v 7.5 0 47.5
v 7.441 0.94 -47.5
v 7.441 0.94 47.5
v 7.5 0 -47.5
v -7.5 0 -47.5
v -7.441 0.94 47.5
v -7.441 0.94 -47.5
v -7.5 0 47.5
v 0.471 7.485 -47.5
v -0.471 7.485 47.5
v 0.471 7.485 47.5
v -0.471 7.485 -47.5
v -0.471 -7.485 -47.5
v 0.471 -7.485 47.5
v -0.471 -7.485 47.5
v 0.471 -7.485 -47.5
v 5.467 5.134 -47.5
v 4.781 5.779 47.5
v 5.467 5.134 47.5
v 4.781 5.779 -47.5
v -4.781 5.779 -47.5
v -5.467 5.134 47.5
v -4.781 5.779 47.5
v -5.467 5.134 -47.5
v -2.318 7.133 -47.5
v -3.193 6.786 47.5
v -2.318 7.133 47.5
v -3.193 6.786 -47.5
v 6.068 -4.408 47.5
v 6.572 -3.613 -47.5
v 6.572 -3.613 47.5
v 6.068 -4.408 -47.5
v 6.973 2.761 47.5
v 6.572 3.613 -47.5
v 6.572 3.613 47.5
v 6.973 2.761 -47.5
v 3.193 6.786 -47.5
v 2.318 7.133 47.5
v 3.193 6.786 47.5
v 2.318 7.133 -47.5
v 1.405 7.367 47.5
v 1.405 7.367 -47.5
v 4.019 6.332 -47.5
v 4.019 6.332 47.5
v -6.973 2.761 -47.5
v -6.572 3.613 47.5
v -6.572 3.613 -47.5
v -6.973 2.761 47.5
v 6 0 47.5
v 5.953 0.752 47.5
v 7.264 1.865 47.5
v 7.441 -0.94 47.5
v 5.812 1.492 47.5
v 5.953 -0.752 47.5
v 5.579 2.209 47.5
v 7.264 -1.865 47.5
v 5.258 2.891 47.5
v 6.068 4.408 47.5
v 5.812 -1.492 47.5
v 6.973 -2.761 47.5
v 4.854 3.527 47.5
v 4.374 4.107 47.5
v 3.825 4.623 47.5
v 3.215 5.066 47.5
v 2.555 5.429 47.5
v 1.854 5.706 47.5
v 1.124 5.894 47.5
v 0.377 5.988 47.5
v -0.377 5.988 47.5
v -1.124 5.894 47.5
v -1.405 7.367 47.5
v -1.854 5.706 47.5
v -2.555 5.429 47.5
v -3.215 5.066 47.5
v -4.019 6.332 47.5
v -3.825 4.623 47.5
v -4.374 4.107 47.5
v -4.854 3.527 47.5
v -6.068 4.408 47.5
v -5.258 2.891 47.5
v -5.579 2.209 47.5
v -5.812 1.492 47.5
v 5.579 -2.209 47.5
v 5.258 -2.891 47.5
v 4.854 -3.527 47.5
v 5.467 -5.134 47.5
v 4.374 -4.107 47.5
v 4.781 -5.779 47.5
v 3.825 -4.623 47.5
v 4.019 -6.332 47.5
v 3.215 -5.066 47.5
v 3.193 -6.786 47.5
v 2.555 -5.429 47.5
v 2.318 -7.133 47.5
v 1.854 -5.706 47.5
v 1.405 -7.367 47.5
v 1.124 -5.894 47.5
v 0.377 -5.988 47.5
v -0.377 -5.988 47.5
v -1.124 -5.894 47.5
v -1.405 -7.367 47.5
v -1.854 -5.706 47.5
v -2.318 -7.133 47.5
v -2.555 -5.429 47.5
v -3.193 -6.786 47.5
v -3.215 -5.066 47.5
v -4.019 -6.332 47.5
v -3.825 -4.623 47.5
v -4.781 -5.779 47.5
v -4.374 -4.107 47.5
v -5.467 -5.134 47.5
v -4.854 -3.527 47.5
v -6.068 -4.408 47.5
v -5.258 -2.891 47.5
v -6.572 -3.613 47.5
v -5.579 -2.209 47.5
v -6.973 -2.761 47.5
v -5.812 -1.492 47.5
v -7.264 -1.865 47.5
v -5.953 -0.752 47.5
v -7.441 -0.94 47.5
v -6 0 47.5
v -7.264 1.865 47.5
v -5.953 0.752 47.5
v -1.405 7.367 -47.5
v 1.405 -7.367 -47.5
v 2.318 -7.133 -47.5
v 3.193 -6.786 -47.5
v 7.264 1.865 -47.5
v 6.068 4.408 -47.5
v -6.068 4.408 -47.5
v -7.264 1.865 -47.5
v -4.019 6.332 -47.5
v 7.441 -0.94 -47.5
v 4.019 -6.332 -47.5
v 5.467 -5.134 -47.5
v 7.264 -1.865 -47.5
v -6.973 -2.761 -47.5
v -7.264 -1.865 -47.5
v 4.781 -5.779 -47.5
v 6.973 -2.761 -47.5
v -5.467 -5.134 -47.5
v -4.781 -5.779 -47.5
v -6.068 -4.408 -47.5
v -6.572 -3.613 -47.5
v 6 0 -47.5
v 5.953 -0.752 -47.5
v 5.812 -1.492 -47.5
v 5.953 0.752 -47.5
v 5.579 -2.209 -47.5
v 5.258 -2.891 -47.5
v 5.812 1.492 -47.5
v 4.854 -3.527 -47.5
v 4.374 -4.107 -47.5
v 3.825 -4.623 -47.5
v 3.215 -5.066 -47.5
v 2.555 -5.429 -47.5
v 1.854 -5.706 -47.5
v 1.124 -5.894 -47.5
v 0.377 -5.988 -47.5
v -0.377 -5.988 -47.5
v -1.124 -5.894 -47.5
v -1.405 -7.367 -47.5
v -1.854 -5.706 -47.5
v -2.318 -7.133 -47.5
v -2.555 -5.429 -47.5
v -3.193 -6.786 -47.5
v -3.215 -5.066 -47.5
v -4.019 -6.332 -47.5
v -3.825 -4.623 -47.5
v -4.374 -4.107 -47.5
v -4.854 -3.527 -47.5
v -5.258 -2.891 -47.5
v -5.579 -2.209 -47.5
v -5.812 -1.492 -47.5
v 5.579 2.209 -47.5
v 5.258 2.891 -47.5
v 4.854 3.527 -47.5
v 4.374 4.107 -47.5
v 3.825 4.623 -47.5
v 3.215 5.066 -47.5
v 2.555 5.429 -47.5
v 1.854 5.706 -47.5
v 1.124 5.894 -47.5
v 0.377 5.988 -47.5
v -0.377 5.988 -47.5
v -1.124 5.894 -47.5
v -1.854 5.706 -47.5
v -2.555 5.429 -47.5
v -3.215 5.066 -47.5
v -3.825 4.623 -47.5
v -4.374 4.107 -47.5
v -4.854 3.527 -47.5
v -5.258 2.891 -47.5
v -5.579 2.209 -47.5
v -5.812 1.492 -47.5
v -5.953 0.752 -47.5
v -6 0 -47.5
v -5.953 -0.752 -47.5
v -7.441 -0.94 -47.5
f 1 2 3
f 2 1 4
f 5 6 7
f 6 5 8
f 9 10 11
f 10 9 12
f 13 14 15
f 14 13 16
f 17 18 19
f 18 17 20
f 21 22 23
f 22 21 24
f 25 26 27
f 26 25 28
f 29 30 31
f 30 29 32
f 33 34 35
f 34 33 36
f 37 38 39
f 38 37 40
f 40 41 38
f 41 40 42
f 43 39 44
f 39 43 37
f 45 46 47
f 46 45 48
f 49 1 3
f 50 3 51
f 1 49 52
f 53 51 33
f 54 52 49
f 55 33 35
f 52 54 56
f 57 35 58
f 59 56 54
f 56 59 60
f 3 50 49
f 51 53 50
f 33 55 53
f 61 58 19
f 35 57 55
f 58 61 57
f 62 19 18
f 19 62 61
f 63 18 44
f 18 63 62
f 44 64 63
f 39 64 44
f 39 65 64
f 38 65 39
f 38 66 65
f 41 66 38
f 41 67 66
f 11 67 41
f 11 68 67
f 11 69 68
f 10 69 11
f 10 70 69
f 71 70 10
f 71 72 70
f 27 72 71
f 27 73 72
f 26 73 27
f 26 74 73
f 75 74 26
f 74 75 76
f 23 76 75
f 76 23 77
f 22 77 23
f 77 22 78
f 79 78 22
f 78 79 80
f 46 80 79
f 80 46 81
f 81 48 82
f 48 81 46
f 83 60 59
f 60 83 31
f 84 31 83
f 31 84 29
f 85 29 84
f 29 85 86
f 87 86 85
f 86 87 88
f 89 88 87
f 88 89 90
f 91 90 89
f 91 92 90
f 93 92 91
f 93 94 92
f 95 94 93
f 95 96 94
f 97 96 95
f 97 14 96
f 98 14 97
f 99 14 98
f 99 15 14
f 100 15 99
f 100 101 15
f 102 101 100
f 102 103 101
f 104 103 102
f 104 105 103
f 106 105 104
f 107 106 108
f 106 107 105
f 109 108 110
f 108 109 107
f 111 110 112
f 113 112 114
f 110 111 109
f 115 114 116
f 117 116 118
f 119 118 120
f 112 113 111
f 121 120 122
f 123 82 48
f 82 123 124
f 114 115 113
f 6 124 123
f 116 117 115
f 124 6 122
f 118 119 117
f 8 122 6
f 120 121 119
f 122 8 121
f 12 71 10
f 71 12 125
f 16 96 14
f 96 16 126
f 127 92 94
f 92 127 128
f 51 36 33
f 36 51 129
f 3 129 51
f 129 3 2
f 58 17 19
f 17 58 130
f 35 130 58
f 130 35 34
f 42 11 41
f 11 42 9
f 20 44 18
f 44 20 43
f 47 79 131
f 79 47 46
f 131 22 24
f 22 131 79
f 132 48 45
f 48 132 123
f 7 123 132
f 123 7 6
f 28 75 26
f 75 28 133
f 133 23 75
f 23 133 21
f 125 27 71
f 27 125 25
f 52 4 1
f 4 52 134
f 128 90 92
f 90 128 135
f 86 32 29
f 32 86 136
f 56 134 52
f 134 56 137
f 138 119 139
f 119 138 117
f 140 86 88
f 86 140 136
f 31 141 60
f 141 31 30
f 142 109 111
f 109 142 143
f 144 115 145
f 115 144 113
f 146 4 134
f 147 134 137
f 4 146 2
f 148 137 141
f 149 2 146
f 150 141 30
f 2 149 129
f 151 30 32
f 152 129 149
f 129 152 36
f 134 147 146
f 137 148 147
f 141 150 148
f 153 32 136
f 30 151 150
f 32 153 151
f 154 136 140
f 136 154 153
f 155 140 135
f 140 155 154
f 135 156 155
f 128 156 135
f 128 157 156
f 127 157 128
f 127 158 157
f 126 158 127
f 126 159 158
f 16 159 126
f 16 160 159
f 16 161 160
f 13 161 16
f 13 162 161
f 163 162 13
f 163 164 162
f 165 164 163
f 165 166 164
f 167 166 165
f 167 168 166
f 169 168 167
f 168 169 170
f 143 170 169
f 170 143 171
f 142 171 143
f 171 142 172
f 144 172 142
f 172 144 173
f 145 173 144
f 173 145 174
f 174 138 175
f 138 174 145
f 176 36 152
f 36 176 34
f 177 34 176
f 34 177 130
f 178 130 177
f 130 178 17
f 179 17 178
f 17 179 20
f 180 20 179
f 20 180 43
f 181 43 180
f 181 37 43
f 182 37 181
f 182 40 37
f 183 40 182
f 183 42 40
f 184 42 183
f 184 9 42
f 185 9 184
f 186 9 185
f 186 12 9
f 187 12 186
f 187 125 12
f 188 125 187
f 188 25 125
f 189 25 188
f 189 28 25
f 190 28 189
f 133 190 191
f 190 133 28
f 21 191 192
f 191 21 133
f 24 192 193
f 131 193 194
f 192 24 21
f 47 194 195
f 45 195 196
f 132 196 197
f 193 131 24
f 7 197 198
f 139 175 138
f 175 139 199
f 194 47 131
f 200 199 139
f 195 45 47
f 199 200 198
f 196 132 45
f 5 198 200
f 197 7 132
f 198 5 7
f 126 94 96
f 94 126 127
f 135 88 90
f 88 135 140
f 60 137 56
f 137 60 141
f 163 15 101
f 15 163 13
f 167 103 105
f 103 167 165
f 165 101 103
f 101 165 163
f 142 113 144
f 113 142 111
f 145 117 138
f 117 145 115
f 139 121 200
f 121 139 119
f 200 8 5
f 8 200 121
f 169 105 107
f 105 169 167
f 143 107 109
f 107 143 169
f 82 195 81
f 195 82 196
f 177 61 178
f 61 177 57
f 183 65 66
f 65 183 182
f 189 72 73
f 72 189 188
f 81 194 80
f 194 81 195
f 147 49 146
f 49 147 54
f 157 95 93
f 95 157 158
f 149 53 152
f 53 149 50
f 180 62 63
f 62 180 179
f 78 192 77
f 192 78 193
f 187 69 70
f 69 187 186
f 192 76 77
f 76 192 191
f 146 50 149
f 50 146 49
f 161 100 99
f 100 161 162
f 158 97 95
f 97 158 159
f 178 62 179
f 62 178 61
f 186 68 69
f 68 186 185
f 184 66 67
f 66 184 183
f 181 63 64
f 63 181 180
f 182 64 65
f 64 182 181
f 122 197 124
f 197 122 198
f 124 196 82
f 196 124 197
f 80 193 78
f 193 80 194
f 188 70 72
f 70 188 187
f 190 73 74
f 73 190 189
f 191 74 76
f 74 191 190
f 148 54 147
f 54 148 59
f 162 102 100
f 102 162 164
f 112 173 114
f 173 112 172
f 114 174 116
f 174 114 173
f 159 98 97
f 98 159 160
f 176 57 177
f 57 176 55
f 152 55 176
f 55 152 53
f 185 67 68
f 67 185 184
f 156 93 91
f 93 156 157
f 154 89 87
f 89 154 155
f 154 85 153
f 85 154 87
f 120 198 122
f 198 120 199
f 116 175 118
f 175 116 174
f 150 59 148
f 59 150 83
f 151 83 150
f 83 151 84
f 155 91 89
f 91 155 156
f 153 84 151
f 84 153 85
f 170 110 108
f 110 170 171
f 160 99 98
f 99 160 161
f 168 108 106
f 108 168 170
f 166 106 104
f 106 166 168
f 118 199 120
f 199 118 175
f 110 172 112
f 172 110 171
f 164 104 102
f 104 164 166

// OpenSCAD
$fn = 50;


difference() {
	union() {
		translate(v = [0, 0, -47.5000000000]) {
			cylinder(h = 95, r = 7.5000000000);
		}
	}
	union() {
		translate(v = [0, 0, -100.0000000000]) {
			cylinder(h = 200, r = 6);
		}
	}
}
